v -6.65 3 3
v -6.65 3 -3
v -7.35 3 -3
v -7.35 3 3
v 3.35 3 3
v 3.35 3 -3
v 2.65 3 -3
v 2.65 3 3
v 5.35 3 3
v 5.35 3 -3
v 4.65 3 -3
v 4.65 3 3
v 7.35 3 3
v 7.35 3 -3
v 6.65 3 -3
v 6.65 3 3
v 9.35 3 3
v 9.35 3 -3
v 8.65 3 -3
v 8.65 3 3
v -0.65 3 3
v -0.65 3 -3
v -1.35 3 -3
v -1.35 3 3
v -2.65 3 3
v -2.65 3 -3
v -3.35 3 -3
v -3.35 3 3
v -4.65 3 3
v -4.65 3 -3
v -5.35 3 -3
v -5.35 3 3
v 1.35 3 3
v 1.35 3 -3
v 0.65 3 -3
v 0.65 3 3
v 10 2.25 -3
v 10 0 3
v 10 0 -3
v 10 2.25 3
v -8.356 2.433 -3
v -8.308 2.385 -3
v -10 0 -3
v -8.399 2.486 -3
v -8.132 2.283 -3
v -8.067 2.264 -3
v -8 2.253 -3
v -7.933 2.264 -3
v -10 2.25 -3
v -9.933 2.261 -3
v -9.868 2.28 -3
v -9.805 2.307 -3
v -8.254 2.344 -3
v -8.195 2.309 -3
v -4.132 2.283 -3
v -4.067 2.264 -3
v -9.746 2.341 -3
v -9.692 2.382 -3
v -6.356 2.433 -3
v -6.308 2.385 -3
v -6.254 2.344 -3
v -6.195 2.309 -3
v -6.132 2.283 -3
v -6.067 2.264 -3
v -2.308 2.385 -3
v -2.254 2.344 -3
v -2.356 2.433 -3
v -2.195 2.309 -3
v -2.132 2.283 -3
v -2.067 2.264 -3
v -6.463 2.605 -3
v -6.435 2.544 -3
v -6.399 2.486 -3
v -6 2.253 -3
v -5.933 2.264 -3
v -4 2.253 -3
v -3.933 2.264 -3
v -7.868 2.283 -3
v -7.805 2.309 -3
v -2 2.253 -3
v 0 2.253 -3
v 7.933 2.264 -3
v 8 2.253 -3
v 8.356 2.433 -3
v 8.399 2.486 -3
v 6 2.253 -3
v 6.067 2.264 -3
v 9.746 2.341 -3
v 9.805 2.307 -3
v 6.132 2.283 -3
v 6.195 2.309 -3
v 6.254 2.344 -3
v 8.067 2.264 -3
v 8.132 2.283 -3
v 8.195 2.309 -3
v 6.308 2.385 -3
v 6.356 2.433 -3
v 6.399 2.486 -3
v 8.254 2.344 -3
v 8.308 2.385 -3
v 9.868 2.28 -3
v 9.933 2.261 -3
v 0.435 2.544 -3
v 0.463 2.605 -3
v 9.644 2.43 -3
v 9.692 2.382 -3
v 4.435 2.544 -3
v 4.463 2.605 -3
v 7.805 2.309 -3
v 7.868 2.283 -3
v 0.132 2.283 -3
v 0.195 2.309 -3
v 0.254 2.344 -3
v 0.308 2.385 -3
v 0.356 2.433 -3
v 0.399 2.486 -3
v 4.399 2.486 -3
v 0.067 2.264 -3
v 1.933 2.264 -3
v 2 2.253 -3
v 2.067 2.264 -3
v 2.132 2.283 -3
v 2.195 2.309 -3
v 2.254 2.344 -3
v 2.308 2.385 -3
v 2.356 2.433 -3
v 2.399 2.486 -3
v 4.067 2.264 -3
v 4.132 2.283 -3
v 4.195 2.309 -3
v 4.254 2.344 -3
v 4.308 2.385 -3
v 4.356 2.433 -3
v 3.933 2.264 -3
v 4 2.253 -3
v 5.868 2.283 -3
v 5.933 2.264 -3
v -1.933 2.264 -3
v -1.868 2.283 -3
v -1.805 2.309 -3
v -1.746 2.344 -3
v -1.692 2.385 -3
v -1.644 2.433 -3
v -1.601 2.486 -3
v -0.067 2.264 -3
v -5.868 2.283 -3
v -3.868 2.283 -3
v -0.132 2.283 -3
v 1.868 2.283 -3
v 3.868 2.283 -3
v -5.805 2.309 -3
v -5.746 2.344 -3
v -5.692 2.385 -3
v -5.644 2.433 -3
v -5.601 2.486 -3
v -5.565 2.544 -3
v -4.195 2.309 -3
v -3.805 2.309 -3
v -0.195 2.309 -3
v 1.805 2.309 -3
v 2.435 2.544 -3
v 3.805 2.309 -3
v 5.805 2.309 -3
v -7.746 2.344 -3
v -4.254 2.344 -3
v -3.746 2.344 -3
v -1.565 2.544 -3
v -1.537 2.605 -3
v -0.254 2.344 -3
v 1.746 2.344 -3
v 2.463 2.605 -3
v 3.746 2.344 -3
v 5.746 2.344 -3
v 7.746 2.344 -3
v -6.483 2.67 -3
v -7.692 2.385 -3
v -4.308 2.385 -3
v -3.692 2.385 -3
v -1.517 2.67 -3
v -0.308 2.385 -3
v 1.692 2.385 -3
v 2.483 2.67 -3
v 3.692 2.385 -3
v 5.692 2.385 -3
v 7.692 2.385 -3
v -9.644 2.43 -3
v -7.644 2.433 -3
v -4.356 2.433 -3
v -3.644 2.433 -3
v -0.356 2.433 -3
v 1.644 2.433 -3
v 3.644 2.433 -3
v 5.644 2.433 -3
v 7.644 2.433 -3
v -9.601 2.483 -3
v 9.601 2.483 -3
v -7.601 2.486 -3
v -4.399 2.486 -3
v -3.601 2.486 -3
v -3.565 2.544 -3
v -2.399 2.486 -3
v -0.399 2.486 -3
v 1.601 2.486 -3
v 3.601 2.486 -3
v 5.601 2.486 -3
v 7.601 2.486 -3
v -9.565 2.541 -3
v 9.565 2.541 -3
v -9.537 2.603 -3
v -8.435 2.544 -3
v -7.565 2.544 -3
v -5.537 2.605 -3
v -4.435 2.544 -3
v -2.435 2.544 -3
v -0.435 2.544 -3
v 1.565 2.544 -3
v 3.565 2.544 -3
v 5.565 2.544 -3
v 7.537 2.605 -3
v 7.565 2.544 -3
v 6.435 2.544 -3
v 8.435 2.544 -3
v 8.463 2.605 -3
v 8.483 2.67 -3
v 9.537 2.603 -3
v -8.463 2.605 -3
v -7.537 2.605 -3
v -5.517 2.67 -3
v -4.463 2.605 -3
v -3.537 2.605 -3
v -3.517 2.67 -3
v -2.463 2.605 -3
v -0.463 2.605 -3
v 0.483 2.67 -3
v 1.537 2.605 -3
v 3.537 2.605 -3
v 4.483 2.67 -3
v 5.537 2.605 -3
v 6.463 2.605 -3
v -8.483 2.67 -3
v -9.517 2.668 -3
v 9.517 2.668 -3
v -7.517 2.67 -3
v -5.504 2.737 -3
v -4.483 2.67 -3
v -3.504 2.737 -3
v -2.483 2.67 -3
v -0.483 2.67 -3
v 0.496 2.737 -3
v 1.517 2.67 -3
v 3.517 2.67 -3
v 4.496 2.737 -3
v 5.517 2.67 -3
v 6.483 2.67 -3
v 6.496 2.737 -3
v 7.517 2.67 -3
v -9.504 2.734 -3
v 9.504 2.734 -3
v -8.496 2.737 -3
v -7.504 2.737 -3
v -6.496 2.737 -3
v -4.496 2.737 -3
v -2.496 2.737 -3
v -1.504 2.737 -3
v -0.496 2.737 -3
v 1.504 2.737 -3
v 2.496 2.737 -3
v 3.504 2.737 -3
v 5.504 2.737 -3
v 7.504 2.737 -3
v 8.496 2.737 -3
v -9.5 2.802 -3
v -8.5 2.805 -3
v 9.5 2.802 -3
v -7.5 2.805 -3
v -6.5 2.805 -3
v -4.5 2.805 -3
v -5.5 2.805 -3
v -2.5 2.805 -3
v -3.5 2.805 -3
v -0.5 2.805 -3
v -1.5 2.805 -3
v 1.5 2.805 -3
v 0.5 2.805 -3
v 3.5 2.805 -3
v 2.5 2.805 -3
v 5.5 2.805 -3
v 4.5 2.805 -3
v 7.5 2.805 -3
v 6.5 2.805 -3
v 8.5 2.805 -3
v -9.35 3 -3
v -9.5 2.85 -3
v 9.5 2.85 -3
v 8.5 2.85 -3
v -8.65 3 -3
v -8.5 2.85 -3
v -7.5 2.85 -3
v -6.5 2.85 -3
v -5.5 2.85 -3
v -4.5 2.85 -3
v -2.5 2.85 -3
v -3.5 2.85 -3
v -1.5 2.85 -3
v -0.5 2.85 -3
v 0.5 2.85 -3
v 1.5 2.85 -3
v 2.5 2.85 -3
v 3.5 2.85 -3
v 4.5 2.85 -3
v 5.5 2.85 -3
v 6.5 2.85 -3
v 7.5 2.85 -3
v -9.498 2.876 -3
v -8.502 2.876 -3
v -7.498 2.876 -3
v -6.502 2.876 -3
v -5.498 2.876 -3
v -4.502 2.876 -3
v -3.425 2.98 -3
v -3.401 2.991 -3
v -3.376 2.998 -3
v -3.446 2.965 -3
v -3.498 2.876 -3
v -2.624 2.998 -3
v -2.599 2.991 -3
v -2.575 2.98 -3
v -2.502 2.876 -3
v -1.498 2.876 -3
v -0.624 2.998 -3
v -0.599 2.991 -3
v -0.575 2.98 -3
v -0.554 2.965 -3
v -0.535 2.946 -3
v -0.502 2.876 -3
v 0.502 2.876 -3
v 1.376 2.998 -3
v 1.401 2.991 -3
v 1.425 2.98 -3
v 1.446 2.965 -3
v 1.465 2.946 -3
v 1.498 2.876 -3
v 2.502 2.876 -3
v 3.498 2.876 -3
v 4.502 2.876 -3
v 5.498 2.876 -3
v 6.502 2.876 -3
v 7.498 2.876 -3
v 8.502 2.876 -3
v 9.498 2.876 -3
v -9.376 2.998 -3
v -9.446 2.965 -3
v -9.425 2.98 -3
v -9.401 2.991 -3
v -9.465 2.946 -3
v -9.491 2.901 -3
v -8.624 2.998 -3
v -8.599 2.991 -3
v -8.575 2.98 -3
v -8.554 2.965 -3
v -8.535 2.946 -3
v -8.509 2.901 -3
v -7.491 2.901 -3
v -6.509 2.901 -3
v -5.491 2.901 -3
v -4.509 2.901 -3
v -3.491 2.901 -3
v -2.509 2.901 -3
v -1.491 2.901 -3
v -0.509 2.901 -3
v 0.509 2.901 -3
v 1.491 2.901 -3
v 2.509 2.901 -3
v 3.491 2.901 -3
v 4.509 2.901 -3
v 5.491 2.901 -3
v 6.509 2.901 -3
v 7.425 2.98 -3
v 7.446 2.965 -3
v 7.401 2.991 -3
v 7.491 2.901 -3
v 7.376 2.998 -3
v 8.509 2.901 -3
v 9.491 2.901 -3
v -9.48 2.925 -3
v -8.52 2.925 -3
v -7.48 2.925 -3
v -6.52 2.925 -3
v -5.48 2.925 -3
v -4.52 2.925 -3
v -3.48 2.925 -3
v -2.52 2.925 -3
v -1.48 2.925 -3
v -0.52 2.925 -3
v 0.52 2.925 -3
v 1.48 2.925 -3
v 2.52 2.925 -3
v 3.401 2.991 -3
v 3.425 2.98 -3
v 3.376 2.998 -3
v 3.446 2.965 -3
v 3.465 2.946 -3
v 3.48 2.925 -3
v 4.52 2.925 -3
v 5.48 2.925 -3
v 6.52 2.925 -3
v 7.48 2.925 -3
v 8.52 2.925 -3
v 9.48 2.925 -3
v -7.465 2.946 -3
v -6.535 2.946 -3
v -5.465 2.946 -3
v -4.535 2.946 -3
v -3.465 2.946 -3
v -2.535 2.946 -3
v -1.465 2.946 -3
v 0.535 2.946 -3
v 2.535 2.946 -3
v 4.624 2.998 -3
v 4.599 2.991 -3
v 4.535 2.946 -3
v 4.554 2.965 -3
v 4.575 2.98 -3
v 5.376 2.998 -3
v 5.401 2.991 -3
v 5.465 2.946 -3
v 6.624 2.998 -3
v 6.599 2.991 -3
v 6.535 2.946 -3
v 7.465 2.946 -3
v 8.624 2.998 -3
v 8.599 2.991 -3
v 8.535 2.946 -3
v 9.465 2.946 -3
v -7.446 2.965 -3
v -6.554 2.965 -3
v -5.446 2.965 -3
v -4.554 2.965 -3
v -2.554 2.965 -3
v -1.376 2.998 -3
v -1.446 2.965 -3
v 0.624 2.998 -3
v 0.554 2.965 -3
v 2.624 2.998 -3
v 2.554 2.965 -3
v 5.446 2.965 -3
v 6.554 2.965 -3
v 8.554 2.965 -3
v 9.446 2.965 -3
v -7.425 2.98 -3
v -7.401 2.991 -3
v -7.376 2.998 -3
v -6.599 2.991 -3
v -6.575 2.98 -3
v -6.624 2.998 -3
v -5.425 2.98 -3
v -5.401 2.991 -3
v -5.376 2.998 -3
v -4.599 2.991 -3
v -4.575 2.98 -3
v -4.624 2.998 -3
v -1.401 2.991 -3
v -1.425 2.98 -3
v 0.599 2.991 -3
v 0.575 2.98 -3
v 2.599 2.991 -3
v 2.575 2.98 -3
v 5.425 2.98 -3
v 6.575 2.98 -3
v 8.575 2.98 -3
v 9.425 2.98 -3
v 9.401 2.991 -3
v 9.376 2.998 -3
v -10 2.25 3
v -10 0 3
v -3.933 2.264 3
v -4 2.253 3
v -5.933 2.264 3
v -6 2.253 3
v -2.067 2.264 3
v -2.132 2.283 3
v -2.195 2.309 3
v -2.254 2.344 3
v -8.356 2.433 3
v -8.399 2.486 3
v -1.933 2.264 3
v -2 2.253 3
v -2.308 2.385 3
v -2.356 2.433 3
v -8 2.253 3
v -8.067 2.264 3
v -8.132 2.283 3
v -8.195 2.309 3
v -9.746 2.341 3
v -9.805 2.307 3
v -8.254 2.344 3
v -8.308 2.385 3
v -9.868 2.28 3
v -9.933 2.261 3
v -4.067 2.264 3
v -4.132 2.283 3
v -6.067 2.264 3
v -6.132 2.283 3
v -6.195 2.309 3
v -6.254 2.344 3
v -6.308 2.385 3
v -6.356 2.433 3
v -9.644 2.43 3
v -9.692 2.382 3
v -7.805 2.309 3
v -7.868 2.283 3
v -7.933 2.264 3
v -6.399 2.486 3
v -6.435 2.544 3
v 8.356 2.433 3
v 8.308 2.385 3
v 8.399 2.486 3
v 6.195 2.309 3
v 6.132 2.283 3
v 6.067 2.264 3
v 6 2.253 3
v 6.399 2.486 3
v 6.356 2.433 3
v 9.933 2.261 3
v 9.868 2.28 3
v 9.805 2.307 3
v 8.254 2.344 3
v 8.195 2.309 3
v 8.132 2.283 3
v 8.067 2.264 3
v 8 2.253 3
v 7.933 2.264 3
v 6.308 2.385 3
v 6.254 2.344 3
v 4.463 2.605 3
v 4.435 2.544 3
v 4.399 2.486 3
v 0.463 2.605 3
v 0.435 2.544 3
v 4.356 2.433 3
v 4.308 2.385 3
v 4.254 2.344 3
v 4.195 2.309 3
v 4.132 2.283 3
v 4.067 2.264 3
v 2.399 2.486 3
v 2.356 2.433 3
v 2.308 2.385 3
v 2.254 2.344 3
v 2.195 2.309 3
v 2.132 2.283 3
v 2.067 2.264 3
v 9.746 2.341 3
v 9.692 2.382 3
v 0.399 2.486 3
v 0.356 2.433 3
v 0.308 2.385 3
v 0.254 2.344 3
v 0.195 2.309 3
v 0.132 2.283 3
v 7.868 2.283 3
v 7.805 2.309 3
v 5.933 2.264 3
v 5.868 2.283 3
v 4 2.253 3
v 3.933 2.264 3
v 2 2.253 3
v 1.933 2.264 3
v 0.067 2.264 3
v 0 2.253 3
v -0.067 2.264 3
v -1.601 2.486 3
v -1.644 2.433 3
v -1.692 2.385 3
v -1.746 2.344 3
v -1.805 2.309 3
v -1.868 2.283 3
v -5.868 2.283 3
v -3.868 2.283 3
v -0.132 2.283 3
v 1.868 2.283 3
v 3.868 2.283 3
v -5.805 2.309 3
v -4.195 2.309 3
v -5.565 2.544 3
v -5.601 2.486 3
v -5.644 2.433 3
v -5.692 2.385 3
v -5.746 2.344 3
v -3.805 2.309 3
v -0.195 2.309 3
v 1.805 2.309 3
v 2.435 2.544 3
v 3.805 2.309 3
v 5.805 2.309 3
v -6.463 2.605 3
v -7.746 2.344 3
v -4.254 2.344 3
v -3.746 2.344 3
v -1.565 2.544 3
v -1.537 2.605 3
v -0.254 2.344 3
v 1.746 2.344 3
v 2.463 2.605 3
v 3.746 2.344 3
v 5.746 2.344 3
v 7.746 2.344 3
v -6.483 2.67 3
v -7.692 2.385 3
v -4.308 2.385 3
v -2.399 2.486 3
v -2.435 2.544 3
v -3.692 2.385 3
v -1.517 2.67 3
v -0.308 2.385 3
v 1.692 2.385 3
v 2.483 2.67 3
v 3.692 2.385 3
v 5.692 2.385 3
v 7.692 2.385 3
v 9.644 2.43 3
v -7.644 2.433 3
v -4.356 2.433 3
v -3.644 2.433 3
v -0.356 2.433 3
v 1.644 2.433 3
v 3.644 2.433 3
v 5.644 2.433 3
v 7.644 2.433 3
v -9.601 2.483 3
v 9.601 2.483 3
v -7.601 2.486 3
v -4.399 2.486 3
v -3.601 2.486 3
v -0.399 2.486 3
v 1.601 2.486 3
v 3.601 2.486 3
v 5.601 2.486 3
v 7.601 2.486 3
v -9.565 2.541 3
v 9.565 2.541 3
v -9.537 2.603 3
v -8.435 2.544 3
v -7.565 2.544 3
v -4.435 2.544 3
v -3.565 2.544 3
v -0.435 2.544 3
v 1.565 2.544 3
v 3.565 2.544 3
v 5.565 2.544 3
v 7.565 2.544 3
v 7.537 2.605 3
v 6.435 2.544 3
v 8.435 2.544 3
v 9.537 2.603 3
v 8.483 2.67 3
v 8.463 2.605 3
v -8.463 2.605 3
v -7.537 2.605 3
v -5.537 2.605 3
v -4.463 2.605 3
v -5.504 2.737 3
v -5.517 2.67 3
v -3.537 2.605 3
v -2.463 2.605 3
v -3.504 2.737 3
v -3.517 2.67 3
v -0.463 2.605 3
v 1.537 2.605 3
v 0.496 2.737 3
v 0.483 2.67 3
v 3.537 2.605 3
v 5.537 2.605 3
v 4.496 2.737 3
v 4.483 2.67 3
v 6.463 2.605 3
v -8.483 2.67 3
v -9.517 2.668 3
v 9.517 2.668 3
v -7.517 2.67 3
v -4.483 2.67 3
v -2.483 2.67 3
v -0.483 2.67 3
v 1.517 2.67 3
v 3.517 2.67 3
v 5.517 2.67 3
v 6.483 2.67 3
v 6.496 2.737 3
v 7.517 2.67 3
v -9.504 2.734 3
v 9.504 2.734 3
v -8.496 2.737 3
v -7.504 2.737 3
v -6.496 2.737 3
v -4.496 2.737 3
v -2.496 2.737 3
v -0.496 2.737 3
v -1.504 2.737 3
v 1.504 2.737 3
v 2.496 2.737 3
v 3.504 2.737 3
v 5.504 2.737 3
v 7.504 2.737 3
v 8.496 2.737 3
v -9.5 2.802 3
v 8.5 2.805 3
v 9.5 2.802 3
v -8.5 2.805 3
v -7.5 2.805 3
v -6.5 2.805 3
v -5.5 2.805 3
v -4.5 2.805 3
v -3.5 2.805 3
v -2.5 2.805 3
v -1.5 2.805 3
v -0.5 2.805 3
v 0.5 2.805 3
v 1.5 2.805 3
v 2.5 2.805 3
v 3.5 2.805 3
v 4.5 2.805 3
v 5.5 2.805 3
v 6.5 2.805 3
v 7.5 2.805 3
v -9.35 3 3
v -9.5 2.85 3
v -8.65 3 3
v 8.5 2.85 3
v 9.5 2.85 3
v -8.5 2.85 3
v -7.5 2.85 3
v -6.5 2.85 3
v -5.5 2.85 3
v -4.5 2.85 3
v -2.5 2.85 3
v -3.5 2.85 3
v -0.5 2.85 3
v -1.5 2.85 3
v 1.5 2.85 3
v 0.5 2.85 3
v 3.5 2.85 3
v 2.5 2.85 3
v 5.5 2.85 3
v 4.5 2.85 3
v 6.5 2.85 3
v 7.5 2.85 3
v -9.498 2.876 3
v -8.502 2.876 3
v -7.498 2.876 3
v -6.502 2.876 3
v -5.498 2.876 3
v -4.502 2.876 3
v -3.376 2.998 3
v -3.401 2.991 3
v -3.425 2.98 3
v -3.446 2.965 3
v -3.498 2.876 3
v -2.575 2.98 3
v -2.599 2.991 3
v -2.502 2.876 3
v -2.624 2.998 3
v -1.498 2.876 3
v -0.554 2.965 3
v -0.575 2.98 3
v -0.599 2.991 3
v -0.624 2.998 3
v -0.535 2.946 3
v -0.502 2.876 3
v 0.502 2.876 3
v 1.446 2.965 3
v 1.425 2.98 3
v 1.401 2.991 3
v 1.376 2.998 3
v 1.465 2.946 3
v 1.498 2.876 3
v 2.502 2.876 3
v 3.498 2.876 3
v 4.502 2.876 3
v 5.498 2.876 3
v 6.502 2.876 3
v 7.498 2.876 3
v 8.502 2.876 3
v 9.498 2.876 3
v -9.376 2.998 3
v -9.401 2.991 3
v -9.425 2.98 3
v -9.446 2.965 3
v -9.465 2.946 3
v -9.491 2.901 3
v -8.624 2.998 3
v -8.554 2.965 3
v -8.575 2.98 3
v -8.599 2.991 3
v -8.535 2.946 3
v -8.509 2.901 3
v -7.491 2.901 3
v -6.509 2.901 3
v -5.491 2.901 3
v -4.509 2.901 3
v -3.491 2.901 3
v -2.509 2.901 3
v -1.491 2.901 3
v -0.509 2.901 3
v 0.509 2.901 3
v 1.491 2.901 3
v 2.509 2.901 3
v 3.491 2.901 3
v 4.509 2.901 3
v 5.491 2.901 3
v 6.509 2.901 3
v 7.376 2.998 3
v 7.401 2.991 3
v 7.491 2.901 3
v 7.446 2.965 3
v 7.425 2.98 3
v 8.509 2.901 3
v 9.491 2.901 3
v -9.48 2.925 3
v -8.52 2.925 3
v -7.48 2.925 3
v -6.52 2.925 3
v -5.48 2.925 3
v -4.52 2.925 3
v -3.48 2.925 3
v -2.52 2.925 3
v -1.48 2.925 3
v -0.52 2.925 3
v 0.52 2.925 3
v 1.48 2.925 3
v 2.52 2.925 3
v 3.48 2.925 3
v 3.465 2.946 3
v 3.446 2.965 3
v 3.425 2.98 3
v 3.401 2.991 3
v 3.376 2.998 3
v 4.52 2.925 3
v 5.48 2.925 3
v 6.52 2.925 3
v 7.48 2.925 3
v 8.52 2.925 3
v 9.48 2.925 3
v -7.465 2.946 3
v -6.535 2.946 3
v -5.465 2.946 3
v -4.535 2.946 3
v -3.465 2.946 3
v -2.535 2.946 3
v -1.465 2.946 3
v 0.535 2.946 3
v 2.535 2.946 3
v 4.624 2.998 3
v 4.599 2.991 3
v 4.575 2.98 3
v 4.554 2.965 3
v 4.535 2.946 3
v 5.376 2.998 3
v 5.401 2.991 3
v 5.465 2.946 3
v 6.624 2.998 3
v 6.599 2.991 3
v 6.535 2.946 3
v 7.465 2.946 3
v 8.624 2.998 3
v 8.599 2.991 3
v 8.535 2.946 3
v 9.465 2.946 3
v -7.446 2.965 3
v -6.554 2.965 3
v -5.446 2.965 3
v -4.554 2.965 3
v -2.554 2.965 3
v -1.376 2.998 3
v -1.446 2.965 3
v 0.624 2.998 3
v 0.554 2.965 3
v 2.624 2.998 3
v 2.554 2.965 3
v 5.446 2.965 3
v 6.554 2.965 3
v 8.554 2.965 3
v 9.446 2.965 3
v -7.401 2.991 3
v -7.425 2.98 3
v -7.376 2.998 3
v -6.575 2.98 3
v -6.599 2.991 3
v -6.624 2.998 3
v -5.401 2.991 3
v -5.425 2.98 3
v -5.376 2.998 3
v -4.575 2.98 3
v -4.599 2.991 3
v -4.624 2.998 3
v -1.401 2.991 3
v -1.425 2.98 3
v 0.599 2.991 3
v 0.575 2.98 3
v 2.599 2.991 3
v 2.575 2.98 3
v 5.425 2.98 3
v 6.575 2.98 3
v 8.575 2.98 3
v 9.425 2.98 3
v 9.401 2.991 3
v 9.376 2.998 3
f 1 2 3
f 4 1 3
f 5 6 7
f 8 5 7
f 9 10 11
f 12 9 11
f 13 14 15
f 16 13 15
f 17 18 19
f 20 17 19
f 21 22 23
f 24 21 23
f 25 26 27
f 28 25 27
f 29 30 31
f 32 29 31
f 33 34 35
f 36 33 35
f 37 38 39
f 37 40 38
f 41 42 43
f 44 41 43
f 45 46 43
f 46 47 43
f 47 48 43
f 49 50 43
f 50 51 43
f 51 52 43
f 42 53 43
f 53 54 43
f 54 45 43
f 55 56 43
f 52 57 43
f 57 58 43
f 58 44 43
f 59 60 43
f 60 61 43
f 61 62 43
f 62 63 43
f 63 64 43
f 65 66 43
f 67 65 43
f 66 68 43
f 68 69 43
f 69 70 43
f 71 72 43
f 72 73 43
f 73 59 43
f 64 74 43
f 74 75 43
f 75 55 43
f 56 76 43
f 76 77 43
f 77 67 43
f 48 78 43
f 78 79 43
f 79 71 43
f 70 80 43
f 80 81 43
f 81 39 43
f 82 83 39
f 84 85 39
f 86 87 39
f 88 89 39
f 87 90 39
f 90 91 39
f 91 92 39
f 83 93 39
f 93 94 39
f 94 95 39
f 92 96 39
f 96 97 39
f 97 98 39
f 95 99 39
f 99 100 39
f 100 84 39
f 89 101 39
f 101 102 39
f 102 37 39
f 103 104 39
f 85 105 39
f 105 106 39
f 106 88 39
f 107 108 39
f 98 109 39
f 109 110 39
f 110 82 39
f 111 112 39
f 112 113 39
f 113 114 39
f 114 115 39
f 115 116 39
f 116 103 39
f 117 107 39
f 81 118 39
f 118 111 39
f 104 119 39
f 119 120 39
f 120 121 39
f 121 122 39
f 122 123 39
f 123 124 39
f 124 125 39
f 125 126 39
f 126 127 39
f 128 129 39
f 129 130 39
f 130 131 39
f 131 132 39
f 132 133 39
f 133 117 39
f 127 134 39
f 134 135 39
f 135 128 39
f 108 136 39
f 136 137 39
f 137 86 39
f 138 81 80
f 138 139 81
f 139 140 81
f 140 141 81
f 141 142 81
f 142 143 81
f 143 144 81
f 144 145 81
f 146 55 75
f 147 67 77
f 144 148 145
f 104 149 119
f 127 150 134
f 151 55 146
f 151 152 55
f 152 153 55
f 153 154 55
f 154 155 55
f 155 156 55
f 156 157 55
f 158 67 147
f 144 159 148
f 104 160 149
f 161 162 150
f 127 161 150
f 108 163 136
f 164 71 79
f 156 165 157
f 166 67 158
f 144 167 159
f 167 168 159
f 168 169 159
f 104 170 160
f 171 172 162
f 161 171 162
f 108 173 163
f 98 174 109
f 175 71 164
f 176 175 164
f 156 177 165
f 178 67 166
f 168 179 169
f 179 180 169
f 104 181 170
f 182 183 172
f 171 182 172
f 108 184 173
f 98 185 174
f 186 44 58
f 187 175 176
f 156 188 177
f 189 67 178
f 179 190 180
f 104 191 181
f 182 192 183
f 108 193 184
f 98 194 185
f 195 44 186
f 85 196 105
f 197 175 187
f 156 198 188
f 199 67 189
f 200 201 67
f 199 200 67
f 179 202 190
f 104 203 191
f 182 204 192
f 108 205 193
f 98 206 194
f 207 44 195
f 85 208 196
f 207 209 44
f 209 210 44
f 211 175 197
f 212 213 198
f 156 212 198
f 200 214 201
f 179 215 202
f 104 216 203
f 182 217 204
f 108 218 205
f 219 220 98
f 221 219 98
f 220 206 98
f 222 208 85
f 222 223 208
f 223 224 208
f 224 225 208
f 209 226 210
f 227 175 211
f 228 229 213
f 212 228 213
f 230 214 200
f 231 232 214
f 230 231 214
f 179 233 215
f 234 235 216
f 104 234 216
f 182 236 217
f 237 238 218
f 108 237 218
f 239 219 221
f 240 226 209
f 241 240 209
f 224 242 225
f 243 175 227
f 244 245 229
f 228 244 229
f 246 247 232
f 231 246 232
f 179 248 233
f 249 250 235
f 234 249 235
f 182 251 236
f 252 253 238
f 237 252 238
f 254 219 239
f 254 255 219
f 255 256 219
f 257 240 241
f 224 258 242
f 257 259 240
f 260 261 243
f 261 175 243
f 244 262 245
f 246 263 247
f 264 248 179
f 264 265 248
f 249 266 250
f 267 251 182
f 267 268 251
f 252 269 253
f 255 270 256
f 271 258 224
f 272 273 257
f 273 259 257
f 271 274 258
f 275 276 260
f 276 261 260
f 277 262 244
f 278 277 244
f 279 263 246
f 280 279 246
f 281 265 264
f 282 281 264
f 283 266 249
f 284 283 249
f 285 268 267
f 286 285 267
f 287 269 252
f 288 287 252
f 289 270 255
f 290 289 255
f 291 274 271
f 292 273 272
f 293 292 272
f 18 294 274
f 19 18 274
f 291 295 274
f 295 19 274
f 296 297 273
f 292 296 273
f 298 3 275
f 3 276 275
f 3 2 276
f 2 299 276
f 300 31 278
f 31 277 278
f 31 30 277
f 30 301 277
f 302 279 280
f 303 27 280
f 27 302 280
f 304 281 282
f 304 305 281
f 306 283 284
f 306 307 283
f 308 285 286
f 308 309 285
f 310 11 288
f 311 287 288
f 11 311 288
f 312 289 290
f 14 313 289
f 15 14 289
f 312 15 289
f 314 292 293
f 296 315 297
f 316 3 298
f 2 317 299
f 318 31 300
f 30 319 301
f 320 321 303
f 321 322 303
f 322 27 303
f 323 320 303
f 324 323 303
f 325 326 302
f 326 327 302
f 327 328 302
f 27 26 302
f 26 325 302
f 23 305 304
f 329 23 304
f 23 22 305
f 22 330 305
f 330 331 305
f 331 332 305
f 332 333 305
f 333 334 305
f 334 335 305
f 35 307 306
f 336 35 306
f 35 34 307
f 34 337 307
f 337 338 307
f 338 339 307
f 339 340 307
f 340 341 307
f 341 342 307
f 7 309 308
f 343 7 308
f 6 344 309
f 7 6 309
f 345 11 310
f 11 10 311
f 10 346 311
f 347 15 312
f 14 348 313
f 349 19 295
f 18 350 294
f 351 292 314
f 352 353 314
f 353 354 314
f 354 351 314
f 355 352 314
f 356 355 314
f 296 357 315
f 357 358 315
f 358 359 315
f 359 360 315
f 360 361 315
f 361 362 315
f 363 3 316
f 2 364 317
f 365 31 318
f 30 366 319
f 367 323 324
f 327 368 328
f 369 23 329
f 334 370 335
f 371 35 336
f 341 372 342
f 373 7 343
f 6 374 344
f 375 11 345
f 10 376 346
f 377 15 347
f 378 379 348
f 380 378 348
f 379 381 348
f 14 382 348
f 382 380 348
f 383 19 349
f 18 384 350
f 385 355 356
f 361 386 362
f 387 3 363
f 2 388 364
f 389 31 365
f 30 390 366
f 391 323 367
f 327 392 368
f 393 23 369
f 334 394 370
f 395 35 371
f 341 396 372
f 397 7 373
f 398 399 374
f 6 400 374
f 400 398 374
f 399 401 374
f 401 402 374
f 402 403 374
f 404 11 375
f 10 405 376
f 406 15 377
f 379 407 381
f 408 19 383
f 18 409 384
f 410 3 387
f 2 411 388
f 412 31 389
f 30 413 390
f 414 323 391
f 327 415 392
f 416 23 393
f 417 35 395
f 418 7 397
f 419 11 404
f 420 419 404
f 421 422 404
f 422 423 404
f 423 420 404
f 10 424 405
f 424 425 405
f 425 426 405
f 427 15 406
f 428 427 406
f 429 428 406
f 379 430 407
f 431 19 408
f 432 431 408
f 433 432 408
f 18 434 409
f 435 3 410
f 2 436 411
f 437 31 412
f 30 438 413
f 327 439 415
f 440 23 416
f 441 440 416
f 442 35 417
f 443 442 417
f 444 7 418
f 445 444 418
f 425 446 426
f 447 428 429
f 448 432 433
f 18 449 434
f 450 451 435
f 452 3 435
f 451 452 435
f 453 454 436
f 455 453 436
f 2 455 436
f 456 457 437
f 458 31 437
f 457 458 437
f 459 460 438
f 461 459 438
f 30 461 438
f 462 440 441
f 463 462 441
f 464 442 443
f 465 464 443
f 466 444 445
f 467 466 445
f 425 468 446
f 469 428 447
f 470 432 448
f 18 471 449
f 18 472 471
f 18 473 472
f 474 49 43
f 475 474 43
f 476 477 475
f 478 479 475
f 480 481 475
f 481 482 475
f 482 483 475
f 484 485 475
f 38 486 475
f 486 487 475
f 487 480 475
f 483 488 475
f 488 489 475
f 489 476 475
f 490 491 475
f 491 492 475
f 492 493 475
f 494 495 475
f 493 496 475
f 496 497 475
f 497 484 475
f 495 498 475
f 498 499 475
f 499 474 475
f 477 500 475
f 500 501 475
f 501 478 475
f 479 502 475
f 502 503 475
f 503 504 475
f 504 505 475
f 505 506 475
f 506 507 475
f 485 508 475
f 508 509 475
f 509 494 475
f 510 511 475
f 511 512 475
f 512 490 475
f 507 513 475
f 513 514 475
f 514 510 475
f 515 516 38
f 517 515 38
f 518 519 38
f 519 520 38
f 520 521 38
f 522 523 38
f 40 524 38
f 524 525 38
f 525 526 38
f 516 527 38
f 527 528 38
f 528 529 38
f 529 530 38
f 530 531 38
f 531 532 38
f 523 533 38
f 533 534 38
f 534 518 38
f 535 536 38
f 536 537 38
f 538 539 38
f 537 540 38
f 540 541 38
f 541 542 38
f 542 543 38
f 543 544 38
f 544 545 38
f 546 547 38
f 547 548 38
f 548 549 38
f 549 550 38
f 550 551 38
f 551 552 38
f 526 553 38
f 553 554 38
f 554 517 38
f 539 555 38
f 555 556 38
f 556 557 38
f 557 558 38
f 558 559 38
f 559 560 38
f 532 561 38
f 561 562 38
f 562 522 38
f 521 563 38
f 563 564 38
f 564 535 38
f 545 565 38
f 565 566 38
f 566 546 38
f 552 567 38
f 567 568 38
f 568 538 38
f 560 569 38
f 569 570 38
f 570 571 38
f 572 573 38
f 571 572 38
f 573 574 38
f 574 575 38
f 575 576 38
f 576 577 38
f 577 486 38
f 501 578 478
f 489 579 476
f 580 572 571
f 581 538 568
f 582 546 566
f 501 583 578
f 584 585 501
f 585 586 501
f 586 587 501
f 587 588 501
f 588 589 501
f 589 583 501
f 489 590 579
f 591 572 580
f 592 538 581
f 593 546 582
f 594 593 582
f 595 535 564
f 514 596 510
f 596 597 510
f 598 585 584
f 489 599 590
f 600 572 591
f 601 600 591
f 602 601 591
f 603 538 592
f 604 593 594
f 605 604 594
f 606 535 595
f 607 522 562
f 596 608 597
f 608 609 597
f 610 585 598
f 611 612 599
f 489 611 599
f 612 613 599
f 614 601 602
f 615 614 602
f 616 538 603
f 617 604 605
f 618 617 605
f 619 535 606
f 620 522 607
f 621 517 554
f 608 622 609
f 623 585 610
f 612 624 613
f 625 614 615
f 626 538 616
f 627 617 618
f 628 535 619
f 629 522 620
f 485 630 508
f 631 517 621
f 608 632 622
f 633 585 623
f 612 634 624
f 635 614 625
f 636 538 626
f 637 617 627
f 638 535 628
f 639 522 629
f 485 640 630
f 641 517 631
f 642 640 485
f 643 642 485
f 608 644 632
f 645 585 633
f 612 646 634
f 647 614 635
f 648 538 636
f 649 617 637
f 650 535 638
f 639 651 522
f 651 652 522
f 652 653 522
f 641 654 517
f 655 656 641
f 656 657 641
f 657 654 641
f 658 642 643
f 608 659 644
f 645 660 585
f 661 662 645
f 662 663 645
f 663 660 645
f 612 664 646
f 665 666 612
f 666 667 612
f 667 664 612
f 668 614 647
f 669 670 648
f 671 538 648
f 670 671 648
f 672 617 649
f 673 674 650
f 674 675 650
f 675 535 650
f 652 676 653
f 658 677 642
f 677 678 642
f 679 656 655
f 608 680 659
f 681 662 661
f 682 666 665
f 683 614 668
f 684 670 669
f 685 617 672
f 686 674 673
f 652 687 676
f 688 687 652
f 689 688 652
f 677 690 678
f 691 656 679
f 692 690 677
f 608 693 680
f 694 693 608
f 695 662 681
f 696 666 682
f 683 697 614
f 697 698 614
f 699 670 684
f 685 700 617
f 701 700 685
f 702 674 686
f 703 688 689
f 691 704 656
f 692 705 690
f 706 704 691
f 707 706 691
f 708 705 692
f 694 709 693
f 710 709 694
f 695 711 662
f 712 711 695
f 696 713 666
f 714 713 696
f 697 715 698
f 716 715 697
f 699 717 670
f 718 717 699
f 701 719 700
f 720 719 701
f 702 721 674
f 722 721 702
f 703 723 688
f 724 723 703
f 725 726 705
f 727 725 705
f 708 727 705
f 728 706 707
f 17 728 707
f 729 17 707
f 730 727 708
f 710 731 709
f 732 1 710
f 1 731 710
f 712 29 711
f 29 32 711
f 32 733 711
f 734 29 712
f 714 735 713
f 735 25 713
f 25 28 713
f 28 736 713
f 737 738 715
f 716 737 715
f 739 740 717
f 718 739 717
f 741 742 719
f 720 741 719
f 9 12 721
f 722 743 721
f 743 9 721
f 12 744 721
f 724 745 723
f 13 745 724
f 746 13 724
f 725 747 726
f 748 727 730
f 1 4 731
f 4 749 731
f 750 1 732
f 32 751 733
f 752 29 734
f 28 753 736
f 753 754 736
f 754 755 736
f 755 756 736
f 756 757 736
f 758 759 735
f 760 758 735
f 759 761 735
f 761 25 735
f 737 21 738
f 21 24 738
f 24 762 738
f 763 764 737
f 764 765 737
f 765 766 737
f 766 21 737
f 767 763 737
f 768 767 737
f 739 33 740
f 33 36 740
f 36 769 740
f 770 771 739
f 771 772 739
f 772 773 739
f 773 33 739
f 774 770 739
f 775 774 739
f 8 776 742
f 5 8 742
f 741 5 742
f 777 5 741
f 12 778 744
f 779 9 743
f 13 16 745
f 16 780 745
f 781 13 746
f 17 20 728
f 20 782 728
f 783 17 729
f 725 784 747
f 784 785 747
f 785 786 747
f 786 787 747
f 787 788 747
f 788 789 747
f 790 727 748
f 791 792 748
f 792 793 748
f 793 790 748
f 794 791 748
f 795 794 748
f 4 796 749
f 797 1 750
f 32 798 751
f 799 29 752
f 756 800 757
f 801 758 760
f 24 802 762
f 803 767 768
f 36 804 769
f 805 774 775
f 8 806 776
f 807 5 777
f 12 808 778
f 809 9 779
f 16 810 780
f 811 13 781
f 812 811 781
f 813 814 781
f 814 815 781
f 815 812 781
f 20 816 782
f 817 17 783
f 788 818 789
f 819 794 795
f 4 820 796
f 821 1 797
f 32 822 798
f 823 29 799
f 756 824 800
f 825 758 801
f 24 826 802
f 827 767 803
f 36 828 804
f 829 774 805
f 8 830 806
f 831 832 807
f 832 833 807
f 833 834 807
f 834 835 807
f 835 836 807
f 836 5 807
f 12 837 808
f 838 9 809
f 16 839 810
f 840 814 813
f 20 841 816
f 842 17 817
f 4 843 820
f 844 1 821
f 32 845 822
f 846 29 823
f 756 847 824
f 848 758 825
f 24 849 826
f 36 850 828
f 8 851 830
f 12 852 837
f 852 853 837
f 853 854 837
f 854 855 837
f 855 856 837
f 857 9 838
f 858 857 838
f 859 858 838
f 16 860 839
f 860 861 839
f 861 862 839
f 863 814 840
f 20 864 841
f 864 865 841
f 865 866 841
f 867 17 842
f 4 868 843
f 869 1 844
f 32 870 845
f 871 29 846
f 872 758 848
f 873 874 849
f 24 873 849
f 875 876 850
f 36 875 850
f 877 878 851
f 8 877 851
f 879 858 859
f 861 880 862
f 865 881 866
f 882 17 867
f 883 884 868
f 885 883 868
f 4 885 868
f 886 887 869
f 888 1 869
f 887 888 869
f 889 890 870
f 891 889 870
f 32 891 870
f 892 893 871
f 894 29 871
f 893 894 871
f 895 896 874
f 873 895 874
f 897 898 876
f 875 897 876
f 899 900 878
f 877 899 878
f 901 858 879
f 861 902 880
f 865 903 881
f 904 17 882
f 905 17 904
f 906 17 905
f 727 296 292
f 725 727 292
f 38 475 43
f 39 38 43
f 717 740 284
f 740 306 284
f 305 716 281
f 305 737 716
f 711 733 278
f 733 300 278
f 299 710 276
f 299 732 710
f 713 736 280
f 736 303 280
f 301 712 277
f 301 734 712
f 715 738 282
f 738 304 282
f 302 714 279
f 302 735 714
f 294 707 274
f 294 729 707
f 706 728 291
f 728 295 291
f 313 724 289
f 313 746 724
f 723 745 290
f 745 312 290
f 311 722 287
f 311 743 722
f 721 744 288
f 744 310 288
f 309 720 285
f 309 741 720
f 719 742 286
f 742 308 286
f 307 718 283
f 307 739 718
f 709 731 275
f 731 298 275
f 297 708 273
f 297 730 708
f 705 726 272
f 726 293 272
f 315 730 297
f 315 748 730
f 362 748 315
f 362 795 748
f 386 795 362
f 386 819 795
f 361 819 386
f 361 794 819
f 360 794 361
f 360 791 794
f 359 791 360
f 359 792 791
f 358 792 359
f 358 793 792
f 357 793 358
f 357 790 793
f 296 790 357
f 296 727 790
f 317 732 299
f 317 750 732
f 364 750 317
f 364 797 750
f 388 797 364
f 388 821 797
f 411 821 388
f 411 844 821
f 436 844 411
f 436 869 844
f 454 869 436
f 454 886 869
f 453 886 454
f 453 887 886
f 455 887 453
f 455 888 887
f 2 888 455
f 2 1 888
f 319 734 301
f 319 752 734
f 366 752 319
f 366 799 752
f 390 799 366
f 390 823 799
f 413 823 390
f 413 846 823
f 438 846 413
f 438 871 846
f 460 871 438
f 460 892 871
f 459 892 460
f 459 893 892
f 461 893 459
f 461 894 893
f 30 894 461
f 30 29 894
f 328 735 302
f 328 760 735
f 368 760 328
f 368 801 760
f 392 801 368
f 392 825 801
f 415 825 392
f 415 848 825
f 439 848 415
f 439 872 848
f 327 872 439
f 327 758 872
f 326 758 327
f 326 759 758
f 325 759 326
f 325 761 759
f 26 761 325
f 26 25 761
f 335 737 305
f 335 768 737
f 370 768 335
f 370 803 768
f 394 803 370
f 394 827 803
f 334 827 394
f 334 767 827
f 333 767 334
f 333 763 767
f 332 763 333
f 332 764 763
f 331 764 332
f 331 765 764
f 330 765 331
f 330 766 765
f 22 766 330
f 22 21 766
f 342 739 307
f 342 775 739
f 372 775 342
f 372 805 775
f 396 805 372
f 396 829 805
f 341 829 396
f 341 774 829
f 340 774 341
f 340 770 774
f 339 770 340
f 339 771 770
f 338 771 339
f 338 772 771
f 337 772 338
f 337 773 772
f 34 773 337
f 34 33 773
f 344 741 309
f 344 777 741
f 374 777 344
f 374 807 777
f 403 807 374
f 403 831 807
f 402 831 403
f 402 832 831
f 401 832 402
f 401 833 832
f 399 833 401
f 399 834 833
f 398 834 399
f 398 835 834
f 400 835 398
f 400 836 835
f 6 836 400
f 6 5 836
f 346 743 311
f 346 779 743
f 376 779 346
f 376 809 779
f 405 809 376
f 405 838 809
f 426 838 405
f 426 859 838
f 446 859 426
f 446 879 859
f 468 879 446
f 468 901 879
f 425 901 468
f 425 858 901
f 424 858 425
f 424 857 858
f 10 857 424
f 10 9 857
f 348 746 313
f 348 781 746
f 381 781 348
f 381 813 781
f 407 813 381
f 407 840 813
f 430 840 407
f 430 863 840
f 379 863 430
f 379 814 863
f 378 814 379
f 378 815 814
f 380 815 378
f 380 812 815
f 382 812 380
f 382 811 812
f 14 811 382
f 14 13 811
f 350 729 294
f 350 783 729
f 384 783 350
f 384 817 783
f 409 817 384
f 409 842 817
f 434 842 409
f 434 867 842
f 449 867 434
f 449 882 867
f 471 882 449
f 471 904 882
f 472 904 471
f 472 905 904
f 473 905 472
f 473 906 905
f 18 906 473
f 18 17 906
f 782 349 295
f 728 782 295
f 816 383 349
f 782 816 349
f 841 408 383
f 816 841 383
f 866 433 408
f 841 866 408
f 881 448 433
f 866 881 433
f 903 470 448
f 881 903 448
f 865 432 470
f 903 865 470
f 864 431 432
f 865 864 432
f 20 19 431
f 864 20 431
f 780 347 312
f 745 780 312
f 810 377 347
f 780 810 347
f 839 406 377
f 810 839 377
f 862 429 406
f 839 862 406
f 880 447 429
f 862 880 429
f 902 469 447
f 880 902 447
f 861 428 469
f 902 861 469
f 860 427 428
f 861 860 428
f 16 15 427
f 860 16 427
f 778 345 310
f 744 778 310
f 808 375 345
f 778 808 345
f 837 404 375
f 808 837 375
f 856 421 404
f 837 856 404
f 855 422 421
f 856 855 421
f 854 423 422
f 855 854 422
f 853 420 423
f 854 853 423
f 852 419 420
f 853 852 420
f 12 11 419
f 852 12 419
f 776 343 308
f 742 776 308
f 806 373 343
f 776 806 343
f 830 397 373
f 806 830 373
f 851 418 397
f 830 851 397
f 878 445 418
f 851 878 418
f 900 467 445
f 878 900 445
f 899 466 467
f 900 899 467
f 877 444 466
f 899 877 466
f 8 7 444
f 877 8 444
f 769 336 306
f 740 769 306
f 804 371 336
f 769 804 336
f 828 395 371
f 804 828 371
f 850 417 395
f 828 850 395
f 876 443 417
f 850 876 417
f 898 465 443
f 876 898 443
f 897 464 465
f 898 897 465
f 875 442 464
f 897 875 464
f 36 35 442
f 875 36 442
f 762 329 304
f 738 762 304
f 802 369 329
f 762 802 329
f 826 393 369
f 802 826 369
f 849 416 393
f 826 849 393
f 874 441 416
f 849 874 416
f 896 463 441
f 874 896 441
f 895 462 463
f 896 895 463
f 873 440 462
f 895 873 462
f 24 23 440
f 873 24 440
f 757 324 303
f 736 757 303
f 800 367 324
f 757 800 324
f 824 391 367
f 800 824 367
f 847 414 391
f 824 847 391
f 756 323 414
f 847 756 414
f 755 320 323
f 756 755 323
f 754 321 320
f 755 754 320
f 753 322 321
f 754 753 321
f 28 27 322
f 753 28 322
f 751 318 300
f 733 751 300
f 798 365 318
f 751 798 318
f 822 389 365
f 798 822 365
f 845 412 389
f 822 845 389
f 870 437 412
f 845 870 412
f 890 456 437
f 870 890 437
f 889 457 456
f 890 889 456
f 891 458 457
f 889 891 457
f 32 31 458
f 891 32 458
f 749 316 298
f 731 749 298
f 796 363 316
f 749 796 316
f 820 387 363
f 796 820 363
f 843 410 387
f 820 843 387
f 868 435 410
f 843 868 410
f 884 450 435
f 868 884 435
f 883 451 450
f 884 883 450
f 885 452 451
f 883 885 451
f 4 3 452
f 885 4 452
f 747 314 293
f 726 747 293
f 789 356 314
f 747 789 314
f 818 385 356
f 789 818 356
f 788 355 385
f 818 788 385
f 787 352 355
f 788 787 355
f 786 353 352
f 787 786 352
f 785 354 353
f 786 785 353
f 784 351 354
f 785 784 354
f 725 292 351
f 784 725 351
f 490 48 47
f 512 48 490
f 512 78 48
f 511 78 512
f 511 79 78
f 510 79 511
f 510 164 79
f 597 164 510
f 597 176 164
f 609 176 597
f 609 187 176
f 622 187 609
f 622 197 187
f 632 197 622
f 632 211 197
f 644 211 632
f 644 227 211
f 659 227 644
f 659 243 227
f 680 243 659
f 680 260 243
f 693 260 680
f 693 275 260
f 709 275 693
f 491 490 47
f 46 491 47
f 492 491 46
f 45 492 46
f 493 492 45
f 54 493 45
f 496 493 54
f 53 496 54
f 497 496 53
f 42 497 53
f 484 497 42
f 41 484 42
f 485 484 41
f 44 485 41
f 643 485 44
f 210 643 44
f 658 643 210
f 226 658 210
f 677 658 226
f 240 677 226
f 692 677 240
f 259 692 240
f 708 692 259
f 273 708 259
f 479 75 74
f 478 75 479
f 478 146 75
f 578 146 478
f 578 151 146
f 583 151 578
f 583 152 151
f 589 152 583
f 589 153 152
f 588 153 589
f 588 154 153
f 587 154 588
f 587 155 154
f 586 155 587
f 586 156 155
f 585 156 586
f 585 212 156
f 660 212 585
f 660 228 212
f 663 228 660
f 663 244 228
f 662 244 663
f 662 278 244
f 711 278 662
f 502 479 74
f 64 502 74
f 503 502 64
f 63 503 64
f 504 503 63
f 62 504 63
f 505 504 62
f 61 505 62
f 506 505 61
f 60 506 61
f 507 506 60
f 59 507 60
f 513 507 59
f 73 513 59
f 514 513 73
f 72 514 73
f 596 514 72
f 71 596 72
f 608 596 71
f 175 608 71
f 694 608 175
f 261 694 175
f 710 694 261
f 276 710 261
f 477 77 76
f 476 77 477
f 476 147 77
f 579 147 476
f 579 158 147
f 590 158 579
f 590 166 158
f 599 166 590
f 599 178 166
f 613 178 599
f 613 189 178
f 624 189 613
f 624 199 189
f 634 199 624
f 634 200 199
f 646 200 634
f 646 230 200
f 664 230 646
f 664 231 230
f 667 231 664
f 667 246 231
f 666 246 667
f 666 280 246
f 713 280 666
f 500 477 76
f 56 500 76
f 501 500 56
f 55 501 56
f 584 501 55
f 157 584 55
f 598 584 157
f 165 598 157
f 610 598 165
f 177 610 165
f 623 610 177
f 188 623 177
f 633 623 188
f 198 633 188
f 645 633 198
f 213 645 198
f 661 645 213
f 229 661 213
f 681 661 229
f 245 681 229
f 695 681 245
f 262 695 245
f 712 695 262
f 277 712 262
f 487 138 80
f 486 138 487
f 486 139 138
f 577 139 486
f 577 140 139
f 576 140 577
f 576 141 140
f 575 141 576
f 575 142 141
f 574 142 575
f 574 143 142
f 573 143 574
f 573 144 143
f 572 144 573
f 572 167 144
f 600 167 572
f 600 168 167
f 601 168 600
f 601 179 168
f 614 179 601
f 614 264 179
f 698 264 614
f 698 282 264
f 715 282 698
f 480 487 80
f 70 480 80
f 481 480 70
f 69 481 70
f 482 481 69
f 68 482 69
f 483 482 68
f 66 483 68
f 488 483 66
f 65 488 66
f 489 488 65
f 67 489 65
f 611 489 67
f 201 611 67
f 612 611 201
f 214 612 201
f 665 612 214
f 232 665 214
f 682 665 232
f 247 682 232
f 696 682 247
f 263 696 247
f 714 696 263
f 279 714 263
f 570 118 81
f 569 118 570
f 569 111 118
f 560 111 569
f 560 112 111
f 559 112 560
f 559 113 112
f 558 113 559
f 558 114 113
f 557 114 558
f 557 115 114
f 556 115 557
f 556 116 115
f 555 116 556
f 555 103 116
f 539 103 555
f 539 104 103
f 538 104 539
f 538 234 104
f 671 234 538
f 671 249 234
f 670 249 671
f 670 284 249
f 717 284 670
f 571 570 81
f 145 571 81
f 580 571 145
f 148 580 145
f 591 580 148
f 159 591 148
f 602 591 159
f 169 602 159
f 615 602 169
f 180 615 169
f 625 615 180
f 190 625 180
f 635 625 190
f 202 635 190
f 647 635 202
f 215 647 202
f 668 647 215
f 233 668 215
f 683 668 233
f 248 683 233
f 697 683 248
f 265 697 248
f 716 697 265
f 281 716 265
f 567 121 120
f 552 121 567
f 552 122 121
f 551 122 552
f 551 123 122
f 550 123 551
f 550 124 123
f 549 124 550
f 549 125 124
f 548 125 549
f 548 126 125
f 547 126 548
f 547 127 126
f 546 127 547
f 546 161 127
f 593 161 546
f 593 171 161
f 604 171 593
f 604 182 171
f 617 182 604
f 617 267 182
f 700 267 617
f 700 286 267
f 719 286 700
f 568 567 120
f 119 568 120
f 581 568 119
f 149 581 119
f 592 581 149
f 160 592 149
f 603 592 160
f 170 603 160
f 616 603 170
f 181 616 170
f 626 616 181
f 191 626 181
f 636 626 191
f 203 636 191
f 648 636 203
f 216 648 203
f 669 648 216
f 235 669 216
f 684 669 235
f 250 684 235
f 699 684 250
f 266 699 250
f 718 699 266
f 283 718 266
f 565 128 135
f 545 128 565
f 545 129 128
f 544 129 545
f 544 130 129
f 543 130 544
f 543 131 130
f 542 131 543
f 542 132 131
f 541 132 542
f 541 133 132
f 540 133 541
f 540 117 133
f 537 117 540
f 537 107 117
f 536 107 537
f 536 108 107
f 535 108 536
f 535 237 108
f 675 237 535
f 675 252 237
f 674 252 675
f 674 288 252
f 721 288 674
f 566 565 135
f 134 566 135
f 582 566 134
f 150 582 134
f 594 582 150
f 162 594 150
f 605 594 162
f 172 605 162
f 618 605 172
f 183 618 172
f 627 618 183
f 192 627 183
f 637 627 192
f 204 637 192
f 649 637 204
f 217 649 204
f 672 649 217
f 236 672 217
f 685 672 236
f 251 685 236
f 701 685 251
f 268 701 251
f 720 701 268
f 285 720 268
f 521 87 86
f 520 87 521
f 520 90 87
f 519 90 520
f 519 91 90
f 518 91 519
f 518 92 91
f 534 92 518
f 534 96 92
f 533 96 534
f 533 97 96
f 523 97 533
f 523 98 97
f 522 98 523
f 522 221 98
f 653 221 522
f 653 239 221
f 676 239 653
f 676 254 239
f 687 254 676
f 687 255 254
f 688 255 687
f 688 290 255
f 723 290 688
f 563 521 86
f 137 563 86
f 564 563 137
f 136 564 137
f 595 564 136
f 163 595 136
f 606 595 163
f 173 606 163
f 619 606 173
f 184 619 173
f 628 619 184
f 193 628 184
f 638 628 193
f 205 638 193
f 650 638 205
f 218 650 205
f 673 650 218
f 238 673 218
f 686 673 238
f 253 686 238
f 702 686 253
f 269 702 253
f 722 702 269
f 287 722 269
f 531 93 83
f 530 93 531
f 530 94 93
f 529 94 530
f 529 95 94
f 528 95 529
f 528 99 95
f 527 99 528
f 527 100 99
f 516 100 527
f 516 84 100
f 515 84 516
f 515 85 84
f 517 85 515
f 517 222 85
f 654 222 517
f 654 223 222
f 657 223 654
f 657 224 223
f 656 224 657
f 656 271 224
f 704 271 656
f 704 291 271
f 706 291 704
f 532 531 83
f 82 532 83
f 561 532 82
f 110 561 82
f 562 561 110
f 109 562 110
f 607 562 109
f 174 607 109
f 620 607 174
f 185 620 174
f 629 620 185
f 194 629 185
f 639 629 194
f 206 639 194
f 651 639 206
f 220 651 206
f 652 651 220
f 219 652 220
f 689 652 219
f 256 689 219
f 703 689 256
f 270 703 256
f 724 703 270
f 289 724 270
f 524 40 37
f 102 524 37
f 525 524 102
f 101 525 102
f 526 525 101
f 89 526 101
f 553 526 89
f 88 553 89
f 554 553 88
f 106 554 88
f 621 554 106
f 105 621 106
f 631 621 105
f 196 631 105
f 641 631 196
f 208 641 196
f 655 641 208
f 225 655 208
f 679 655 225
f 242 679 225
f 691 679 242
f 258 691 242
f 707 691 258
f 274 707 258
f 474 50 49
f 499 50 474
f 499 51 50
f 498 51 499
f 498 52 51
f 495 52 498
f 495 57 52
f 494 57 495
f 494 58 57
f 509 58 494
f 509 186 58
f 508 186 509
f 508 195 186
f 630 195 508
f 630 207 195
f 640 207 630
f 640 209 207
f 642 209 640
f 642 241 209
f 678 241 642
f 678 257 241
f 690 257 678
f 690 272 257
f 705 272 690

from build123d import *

# Parameters (mm, degrees)
SKETCH1_W           = 20
SKETCH1_H           = 6
BOSS_EXTRUDE1_DEPTH = 3
SKETCH2_W           = 1
SKETCH2_H           = 6
CUT_EXTRUDE1_DEPTH  = 0.75
FILLET1_R           = 0.15
FILLET2_R           = 0.555


with BuildPart() as part:
    # Sketch1 → Boss-Extrude1 (new body)
    with BuildSketch(Plane(origin=(0, 0, 0), x_dir=(1, 0, 0), z_dir=(0, 1, 0))):
        Rectangle(SKETCH1_W, SKETCH1_H)
    extrude(amount=BOSS_EXTRUDE1_DEPTH)

    # Sketch2 → Cut-Extrude1 (cut)
    with BuildSketch(Plane(origin=(0, 3, 0), x_dir=(1, 0, 0), z_dir=(0, 1, 0))):
        Rectangle(SKETCH2_W, SKETCH2_H)
        with Locations((2, 0)):
            Rectangle(SKETCH2_W, SKETCH2_H)
        with Locations((4, 0)):
            Rectangle(SKETCH2_W, SKETCH2_H)
        with Locations((6, 0)):
            Rectangle(SKETCH2_W, SKETCH2_H)
        with Locations((8, 0)):
            Rectangle(SKETCH2_W, SKETCH2_H)
        with Locations((10, 0)):
            Rectangle(SKETCH2_W, SKETCH2_H)
        with Locations((-2, 0)):
            Rectangle(SKETCH2_W, SKETCH2_H)
        with Locations((-4, 0)):
            Rectangle(SKETCH2_W, SKETCH2_H)
        with Locations((-6, 0)):
            Rectangle(SKETCH2_W, SKETCH2_H)
        with Locations((-8, 0)):
            Rectangle(SKETCH2_W, SKETCH2_H)
        with Locations((-10, 0)):
            Rectangle(SKETCH2_W, SKETCH2_H)
    extrude(amount=-CUT_EXTRUDE1_DEPTH, mode=Mode.SUBTRACT)

    # Fillet1
    fillet1_edges = [part.edges().sort_by_distance(p)[0] for p in [
        (8.5, 3, 0),
        (7.5, 3, 0),
        (9.5, 3, 0),
        (-1.5, 3, 0),
        (-2.5, 3, 0),
        (-3.5, 3, 0),
        (-4.5, 3, 0),
        (-5.5, 3, 0),
        (-6.5, 3, 0),
        (0.5, 3, 0),
        (-0.5, 3, 0),
        (-9.5, 3, 0),
        (-7.5, 3, 0),
        (-8.5, 3, 0),
        (2.5, 3, 0),
        (1.5, 3, 0),
        (4.5, 3, 0),
        (3.5, 3, 0),
        (6.5, 3, 0),
        (5.5, 3, 0),
    ]]
    fillet(fillet1_edges, radius=FILLET1_R)

    # Fillet2
    # the kernel refuses this fillet: 0.555 mm, written as the material it adds along each edge
    with BuildSketch(Plane(origin=(-8.5, 2.25, -3), x_dir=(0, 1, 0), z_dir=(0, 0, 1)), Plane(origin=(-6.5, 2.25, -3), x_dir=(0, 1, 0), z_dir=(0, 0, 1)), Plane(origin=(-4.5, 2.25, -3), x_dir=(0, 1, 0), z_dir=(0, 0, 1)), Plane(origin=(-2.5, 2.25, -3), x_dir=(0, 1, 0), z_dir=(0, 0, 1)), Plane(origin=(8.5, 2.25, 3), x_dir=(0, 1, 0), z_dir=(0, 0, -1)), Plane(origin=(6.5, 2.25, 3), x_dir=(0, 1, 0), z_dir=(0, 0, -1)), Plane(origin=(4.5, 2.25, 3), x_dir=(0, 1, 0), z_dir=(0, 0, -1)), Plane(origin=(2.5, 2.25, 3), x_dir=(0, 1, 0), z_dir=(0, 0, -1)), Plane(origin=(0.5, 2.25, 3), x_dir=(0, 1, 0), z_dir=(0, 0, -1))) as fillet2_piece_1:
        with BuildLine():
            CenterArc((FILLET2_R, -FILLET2_R), FILLET2_R, 90, 90)
            Line((0, -FILLET2_R), (-FILLET2_R * 0.02, -FILLET2_R))
            Line((-FILLET2_R * 0.02, -FILLET2_R), (-FILLET2_R * 0.02, FILLET2_R * 0.02))
            Line((-FILLET2_R * 0.02, FILLET2_R * 0.02), (FILLET2_R, FILLET2_R * 0.02))
            Line((FILLET2_R, FILLET2_R * 0.02), (FILLET2_R, 0))
        make_face()
    extrude(amount=6)
    with BuildSketch(Plane(origin=(-0.5, 2.25, -3), x_dir=(1, 0, 0), z_dir=(0, 0, 1)), Plane(origin=(1.5, 2.25, -3), x_dir=(1, 0, 0), z_dir=(0, 0, 1)), Plane(origin=(3.5, 2.25, -3), x_dir=(1, 0, 0), z_dir=(0, 0, 1)), Plane(origin=(5.5, 2.25, -3), x_dir=(1, 0, 0), z_dir=(0, 0, 1)), Plane(origin=(7.5, 2.25, -3), x_dir=(1, 0, 0), z_dir=(0, 0, 1)), Plane(origin=(-1.5, 2.25, 3), x_dir=(-1, 0, 0), z_dir=(0, 0, -1)), Plane(origin=(-3.5, 2.25, 3), x_dir=(-1, 0, 0), z_dir=(0, 0, -1)), Plane(origin=(-5.5, 2.25, 3), x_dir=(-1, 0, 0), z_dir=(0, 0, -1)), Plane(origin=(-7.5, 2.25, 3), x_dir=(-1, 0, 0), z_dir=(0, 0, -1))) as fillet2_piece_2:
        with BuildLine():
            CenterArc((FILLET2_R, FILLET2_R), FILLET2_R, 180, 90)
            Line((0, FILLET2_R), (-FILLET2_R * 0.02, FILLET2_R))
            Line((-FILLET2_R * 0.02, FILLET2_R), (-FILLET2_R * 0.02, -FILLET2_R * 0.02))
            Line((-FILLET2_R * 0.02, -FILLET2_R * 0.02), (FILLET2_R, -FILLET2_R * 0.02))
            Line((FILLET2_R, -FILLET2_R * 0.02), (FILLET2_R, 0))
        make_face()
    extrude(amount=6)
    with BuildSketch(Plane(origin=(9.5, 2.25, -3), x_dir=(0, 1, 0), z_dir=(0, 0, 1))) as fillet2_piece_3:
        with BuildLine():
            CenterArc((0.552268051, -0.555), FILLET2_R, 90, 84.31270503)
            Line((0, -0.5), (-0.011045361, -0.4989))
            ThreePointArc((-0.011045361, -0.4989), (-0.0111, -0.25), (-0.0111, 0))
            Line((-0.0111, 0), (0, 0.0111))
            Line((0, 0.0111), (0.552268051, 0.0111))
            Line((0.552268051, 0.0111), (0.552268051, 0))
        make_face()
    extrude(amount=6)
    with BuildSketch(Plane(origin=(-9.5, 2.25, 3), x_dir=(-1, 0, 0), z_dir=(0, 0, -1))) as fillet2_piece_4:
        with BuildLine():
            CenterArc((0.555, 0.552268051), FILLET2_R, 180, 84.31270503)
            Line((0, 0.552268051), (-0.0111, 0.552268051))
            Line((-0.0111, 0.552268051), (-0.0111, 0))
            Line((-0.0111, 0), (0, -0.0111))
            ThreePointArc((0, -0.0111), (0.25, -0.0111), (0.4989, -0.011045361))
            Line((0.4989, -0.011045361), (0.5, 0))
        make_face()
    extrude(amount=6)


solid = part.part
